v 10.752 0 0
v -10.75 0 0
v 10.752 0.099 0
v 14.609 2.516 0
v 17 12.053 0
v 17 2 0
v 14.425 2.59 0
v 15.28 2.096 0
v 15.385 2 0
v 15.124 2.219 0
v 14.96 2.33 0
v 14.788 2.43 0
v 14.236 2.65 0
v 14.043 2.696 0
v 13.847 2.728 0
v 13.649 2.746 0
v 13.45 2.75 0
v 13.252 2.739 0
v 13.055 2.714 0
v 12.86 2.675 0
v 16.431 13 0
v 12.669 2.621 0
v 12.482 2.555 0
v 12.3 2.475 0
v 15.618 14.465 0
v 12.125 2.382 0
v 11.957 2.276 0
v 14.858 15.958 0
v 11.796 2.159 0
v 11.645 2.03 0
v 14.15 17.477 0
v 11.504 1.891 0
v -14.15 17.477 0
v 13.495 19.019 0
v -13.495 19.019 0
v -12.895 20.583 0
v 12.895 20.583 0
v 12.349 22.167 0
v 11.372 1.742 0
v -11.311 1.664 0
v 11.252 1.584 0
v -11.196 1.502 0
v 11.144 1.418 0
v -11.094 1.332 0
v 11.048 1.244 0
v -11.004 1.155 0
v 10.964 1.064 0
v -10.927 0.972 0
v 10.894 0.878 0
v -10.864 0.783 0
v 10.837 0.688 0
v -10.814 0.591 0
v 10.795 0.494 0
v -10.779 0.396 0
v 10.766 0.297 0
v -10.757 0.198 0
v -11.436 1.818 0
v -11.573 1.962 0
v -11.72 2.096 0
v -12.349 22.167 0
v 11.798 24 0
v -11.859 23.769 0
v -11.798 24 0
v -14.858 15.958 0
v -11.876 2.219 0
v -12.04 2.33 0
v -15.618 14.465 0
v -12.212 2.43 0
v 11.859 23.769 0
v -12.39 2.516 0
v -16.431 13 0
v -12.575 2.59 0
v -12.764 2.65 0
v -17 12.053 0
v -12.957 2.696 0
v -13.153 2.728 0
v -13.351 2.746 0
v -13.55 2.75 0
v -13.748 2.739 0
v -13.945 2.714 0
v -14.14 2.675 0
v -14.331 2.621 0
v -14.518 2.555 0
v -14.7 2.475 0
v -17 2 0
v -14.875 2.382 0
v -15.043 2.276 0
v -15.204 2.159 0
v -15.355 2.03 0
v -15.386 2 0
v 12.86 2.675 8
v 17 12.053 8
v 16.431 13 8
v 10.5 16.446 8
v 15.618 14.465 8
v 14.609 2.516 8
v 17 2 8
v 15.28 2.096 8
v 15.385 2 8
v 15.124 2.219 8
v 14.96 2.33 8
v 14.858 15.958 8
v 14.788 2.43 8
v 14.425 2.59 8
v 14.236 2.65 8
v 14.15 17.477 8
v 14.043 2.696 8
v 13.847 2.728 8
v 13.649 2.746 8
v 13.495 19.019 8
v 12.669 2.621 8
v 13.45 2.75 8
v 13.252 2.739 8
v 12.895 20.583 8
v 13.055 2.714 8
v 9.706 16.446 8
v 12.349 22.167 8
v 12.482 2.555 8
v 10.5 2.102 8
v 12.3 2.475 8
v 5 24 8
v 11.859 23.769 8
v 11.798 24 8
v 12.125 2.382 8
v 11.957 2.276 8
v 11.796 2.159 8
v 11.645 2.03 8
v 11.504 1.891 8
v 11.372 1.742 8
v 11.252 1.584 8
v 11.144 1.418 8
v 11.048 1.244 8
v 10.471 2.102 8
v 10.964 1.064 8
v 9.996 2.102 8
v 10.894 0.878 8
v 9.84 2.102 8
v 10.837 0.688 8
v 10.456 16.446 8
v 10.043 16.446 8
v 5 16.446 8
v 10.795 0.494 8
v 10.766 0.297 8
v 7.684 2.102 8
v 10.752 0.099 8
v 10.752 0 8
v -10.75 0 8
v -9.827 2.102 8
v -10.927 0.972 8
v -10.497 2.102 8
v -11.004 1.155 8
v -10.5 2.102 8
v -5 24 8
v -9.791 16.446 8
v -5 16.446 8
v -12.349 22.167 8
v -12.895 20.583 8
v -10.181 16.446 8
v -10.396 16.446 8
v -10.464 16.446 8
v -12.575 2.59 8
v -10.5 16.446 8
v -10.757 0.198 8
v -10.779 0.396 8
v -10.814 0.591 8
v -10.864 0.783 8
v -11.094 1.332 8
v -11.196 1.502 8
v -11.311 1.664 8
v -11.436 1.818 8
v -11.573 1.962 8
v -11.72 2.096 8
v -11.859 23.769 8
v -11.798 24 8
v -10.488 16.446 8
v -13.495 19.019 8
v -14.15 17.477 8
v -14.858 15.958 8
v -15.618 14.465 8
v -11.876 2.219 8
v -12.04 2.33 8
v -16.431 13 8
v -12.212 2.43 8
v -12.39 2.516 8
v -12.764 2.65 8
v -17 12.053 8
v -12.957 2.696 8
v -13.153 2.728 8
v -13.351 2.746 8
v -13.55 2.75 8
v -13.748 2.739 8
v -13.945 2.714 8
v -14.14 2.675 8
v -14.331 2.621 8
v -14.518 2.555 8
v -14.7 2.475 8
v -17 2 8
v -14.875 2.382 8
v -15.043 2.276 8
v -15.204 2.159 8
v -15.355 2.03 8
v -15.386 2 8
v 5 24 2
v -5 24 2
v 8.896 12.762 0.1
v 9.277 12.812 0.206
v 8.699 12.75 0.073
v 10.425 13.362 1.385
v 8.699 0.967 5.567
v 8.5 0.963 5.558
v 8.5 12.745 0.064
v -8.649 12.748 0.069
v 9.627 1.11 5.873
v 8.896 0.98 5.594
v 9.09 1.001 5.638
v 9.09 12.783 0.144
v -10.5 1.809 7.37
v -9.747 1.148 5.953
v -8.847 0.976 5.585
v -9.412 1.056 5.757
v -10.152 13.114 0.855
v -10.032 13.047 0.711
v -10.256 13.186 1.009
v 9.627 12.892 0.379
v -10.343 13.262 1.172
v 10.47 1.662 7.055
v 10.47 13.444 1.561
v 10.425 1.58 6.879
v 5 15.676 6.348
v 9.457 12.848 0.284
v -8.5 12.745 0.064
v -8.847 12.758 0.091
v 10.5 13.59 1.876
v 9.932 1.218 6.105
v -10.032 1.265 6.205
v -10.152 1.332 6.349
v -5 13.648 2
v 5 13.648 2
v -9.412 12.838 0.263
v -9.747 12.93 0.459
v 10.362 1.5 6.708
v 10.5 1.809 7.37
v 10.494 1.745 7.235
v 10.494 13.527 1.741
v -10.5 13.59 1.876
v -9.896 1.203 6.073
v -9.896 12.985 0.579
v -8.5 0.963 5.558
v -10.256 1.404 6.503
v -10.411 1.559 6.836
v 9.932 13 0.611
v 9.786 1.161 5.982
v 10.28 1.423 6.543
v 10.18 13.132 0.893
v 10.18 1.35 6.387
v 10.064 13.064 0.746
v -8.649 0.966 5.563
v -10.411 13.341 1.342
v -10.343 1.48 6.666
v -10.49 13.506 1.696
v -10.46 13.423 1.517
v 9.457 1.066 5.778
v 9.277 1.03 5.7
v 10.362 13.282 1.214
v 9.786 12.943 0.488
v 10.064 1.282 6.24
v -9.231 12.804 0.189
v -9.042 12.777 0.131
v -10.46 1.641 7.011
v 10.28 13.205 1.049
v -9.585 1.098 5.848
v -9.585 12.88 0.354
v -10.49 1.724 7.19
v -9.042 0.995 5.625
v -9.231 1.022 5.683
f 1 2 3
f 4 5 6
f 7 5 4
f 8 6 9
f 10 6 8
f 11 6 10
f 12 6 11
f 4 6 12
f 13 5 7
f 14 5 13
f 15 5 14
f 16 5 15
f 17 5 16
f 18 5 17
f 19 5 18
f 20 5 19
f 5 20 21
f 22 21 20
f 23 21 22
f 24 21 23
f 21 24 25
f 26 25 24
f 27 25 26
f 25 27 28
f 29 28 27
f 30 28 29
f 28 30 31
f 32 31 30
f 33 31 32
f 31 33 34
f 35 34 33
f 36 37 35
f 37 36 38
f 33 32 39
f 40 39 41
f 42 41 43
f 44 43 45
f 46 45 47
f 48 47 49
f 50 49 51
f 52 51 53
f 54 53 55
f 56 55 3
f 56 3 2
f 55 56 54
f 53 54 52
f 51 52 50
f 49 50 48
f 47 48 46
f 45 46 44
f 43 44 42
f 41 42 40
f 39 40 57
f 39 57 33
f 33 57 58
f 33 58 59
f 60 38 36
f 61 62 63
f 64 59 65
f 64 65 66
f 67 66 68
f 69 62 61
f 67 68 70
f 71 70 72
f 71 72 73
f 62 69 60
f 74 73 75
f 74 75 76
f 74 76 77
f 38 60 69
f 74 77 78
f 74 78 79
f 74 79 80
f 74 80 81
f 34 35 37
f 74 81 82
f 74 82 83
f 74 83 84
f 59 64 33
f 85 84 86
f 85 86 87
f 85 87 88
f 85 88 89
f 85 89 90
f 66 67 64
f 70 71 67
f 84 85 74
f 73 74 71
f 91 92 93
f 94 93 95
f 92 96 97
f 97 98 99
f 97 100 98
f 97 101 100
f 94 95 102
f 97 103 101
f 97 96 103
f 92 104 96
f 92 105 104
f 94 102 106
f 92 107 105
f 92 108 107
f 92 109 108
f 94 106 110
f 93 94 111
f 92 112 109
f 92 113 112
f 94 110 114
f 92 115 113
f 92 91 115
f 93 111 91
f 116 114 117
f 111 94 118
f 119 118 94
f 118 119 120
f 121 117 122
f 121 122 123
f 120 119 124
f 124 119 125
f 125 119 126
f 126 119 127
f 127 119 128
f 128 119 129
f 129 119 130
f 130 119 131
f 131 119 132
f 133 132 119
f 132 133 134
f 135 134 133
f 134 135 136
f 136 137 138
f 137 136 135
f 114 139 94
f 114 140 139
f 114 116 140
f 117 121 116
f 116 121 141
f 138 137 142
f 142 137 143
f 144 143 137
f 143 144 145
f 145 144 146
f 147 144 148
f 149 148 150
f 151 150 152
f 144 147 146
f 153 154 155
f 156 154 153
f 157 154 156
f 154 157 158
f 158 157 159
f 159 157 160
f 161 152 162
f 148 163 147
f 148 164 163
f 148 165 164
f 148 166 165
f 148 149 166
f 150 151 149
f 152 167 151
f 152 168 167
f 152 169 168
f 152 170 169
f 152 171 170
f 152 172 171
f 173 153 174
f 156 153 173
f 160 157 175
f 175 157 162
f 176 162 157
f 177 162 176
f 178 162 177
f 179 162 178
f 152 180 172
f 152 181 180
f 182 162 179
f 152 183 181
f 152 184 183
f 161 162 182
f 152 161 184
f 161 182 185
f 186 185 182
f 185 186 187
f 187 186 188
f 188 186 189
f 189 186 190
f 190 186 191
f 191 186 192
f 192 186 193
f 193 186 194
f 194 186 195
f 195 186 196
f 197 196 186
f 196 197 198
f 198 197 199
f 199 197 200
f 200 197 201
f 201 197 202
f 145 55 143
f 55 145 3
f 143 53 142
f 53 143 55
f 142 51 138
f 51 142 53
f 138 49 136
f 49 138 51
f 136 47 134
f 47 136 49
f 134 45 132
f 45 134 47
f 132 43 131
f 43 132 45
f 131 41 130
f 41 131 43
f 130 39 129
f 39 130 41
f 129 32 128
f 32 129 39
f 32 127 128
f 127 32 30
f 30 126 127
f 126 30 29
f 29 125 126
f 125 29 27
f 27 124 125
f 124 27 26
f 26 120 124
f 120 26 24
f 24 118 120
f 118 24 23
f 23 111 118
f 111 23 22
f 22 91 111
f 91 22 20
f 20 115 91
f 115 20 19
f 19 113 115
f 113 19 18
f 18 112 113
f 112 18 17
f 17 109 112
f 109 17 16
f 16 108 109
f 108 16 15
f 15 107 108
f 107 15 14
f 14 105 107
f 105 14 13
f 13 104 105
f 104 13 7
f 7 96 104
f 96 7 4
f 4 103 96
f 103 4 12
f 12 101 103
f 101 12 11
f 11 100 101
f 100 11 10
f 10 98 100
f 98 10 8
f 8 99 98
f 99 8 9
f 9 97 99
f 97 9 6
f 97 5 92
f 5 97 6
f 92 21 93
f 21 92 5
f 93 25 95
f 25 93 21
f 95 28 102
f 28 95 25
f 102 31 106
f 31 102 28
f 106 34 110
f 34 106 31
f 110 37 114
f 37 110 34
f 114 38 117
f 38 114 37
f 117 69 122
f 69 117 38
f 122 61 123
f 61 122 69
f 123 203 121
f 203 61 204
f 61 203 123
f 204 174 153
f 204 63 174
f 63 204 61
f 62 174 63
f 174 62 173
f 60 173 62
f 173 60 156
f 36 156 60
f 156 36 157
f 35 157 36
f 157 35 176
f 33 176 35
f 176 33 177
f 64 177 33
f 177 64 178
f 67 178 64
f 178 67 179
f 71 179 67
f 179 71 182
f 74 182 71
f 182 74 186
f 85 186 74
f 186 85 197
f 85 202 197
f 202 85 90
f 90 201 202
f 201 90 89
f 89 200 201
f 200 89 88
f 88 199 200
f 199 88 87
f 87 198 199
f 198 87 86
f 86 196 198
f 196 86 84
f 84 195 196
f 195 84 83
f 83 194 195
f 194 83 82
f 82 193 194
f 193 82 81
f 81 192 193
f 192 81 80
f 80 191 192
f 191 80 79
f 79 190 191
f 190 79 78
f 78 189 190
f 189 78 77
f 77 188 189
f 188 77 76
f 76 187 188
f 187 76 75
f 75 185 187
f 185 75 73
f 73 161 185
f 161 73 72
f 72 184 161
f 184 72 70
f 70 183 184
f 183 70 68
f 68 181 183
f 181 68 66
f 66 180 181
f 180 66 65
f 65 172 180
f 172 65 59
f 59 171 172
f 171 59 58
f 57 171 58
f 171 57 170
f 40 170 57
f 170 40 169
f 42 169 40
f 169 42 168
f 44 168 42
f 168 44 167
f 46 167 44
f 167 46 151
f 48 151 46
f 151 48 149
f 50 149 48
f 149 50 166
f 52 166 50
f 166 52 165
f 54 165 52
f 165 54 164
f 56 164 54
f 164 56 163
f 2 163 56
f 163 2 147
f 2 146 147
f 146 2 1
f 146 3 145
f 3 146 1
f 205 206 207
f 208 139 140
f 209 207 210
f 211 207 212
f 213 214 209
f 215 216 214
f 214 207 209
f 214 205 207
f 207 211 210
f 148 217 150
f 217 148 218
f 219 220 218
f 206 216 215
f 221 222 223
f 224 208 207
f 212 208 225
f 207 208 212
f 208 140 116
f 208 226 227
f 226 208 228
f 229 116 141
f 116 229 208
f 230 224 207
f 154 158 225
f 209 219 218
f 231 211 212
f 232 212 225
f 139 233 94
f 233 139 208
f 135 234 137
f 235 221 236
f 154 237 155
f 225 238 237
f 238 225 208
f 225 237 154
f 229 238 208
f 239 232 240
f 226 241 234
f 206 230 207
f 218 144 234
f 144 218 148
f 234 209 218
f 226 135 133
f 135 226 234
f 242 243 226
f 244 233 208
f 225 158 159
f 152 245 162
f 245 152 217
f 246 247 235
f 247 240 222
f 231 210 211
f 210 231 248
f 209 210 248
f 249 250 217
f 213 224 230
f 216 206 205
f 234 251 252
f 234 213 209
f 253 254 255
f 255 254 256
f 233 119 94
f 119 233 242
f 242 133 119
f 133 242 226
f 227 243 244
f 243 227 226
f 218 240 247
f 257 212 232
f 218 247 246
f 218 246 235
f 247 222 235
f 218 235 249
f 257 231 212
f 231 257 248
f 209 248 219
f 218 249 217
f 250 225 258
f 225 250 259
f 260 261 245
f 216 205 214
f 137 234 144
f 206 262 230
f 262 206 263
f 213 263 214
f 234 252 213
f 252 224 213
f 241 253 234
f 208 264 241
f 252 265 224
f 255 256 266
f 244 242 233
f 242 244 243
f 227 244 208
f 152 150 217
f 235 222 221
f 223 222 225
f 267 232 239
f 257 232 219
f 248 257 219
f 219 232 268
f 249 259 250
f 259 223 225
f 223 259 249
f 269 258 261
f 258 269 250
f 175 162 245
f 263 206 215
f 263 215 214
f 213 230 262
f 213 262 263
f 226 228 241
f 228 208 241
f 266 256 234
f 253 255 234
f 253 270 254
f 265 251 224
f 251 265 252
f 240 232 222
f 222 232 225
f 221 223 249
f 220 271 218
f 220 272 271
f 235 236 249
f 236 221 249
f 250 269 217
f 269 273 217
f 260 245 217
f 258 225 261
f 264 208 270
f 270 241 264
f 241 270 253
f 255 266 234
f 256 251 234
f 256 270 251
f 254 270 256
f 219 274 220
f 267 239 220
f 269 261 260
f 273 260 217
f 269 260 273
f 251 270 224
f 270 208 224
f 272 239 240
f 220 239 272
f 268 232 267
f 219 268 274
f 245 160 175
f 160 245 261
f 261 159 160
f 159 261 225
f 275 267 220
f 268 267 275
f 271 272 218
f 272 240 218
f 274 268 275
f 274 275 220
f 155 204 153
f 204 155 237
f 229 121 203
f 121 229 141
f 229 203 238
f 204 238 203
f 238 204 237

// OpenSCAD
// Fixed camera angle support for iFlight Protek 35

$fs = $preview ? 0.5 : 0.2;
$fa = $preview ? 10 : 2;

// plate
h0 = 8;
w0 = 34;
l0 = 24;

// front cuts
f0 = 2;
fw = 27;
fd = 5.5;

// camera placement
cp_y = 8;
cp_z = 10;
cp_a = 25; // ANGLE

// camera dims
cw = 21;
ch = 21;
cl = 13;
cr = 2;

// mounting hole on camera
cm_y = 4.5;
cm_z = 7.0;

// camera back cutout
cb_w = 10;
cb_h = 2; // remaining height

// duct radius cutout
duct_x = 58;
duct_r = 48;
duct_y = 37;

difference() {
    linear_extrude(h0) {
        difference() {
            translate([-w0 / 2, 0]) square([w0, l0]);
            translate([duct_x, duct_y]) circle(r = duct_r);
            translate([-duct_x, duct_y]) circle(r = duct_r);
            translate([fw / 2, 0]) circle(d = fd);
            translate([-fw / 2, 0]) circle(d = fd);
            translate([fw / 2, 0]) square([w0, f0]);
            translate([-fw / 2 - w0, 0]) square([w0, f0]);
        }
    }
    #translate([0, cp_y, cp_z])
        rotate([-cp_a, 0, 0])
            camera();
    #translate([-cb_w / 2, cl, cb_h])
        cube([cb_w, l0, h0]);
}

module camera() {
    translate([0, cl - cm_y, -cm_z])
        rotate([90, 0, 0])
            linear_extrude(cl) {
                translate([cr - cw / 2, cr]) offset(cr) square([cw - 2 * cr, ch - 2 * cr]);
            }
}
